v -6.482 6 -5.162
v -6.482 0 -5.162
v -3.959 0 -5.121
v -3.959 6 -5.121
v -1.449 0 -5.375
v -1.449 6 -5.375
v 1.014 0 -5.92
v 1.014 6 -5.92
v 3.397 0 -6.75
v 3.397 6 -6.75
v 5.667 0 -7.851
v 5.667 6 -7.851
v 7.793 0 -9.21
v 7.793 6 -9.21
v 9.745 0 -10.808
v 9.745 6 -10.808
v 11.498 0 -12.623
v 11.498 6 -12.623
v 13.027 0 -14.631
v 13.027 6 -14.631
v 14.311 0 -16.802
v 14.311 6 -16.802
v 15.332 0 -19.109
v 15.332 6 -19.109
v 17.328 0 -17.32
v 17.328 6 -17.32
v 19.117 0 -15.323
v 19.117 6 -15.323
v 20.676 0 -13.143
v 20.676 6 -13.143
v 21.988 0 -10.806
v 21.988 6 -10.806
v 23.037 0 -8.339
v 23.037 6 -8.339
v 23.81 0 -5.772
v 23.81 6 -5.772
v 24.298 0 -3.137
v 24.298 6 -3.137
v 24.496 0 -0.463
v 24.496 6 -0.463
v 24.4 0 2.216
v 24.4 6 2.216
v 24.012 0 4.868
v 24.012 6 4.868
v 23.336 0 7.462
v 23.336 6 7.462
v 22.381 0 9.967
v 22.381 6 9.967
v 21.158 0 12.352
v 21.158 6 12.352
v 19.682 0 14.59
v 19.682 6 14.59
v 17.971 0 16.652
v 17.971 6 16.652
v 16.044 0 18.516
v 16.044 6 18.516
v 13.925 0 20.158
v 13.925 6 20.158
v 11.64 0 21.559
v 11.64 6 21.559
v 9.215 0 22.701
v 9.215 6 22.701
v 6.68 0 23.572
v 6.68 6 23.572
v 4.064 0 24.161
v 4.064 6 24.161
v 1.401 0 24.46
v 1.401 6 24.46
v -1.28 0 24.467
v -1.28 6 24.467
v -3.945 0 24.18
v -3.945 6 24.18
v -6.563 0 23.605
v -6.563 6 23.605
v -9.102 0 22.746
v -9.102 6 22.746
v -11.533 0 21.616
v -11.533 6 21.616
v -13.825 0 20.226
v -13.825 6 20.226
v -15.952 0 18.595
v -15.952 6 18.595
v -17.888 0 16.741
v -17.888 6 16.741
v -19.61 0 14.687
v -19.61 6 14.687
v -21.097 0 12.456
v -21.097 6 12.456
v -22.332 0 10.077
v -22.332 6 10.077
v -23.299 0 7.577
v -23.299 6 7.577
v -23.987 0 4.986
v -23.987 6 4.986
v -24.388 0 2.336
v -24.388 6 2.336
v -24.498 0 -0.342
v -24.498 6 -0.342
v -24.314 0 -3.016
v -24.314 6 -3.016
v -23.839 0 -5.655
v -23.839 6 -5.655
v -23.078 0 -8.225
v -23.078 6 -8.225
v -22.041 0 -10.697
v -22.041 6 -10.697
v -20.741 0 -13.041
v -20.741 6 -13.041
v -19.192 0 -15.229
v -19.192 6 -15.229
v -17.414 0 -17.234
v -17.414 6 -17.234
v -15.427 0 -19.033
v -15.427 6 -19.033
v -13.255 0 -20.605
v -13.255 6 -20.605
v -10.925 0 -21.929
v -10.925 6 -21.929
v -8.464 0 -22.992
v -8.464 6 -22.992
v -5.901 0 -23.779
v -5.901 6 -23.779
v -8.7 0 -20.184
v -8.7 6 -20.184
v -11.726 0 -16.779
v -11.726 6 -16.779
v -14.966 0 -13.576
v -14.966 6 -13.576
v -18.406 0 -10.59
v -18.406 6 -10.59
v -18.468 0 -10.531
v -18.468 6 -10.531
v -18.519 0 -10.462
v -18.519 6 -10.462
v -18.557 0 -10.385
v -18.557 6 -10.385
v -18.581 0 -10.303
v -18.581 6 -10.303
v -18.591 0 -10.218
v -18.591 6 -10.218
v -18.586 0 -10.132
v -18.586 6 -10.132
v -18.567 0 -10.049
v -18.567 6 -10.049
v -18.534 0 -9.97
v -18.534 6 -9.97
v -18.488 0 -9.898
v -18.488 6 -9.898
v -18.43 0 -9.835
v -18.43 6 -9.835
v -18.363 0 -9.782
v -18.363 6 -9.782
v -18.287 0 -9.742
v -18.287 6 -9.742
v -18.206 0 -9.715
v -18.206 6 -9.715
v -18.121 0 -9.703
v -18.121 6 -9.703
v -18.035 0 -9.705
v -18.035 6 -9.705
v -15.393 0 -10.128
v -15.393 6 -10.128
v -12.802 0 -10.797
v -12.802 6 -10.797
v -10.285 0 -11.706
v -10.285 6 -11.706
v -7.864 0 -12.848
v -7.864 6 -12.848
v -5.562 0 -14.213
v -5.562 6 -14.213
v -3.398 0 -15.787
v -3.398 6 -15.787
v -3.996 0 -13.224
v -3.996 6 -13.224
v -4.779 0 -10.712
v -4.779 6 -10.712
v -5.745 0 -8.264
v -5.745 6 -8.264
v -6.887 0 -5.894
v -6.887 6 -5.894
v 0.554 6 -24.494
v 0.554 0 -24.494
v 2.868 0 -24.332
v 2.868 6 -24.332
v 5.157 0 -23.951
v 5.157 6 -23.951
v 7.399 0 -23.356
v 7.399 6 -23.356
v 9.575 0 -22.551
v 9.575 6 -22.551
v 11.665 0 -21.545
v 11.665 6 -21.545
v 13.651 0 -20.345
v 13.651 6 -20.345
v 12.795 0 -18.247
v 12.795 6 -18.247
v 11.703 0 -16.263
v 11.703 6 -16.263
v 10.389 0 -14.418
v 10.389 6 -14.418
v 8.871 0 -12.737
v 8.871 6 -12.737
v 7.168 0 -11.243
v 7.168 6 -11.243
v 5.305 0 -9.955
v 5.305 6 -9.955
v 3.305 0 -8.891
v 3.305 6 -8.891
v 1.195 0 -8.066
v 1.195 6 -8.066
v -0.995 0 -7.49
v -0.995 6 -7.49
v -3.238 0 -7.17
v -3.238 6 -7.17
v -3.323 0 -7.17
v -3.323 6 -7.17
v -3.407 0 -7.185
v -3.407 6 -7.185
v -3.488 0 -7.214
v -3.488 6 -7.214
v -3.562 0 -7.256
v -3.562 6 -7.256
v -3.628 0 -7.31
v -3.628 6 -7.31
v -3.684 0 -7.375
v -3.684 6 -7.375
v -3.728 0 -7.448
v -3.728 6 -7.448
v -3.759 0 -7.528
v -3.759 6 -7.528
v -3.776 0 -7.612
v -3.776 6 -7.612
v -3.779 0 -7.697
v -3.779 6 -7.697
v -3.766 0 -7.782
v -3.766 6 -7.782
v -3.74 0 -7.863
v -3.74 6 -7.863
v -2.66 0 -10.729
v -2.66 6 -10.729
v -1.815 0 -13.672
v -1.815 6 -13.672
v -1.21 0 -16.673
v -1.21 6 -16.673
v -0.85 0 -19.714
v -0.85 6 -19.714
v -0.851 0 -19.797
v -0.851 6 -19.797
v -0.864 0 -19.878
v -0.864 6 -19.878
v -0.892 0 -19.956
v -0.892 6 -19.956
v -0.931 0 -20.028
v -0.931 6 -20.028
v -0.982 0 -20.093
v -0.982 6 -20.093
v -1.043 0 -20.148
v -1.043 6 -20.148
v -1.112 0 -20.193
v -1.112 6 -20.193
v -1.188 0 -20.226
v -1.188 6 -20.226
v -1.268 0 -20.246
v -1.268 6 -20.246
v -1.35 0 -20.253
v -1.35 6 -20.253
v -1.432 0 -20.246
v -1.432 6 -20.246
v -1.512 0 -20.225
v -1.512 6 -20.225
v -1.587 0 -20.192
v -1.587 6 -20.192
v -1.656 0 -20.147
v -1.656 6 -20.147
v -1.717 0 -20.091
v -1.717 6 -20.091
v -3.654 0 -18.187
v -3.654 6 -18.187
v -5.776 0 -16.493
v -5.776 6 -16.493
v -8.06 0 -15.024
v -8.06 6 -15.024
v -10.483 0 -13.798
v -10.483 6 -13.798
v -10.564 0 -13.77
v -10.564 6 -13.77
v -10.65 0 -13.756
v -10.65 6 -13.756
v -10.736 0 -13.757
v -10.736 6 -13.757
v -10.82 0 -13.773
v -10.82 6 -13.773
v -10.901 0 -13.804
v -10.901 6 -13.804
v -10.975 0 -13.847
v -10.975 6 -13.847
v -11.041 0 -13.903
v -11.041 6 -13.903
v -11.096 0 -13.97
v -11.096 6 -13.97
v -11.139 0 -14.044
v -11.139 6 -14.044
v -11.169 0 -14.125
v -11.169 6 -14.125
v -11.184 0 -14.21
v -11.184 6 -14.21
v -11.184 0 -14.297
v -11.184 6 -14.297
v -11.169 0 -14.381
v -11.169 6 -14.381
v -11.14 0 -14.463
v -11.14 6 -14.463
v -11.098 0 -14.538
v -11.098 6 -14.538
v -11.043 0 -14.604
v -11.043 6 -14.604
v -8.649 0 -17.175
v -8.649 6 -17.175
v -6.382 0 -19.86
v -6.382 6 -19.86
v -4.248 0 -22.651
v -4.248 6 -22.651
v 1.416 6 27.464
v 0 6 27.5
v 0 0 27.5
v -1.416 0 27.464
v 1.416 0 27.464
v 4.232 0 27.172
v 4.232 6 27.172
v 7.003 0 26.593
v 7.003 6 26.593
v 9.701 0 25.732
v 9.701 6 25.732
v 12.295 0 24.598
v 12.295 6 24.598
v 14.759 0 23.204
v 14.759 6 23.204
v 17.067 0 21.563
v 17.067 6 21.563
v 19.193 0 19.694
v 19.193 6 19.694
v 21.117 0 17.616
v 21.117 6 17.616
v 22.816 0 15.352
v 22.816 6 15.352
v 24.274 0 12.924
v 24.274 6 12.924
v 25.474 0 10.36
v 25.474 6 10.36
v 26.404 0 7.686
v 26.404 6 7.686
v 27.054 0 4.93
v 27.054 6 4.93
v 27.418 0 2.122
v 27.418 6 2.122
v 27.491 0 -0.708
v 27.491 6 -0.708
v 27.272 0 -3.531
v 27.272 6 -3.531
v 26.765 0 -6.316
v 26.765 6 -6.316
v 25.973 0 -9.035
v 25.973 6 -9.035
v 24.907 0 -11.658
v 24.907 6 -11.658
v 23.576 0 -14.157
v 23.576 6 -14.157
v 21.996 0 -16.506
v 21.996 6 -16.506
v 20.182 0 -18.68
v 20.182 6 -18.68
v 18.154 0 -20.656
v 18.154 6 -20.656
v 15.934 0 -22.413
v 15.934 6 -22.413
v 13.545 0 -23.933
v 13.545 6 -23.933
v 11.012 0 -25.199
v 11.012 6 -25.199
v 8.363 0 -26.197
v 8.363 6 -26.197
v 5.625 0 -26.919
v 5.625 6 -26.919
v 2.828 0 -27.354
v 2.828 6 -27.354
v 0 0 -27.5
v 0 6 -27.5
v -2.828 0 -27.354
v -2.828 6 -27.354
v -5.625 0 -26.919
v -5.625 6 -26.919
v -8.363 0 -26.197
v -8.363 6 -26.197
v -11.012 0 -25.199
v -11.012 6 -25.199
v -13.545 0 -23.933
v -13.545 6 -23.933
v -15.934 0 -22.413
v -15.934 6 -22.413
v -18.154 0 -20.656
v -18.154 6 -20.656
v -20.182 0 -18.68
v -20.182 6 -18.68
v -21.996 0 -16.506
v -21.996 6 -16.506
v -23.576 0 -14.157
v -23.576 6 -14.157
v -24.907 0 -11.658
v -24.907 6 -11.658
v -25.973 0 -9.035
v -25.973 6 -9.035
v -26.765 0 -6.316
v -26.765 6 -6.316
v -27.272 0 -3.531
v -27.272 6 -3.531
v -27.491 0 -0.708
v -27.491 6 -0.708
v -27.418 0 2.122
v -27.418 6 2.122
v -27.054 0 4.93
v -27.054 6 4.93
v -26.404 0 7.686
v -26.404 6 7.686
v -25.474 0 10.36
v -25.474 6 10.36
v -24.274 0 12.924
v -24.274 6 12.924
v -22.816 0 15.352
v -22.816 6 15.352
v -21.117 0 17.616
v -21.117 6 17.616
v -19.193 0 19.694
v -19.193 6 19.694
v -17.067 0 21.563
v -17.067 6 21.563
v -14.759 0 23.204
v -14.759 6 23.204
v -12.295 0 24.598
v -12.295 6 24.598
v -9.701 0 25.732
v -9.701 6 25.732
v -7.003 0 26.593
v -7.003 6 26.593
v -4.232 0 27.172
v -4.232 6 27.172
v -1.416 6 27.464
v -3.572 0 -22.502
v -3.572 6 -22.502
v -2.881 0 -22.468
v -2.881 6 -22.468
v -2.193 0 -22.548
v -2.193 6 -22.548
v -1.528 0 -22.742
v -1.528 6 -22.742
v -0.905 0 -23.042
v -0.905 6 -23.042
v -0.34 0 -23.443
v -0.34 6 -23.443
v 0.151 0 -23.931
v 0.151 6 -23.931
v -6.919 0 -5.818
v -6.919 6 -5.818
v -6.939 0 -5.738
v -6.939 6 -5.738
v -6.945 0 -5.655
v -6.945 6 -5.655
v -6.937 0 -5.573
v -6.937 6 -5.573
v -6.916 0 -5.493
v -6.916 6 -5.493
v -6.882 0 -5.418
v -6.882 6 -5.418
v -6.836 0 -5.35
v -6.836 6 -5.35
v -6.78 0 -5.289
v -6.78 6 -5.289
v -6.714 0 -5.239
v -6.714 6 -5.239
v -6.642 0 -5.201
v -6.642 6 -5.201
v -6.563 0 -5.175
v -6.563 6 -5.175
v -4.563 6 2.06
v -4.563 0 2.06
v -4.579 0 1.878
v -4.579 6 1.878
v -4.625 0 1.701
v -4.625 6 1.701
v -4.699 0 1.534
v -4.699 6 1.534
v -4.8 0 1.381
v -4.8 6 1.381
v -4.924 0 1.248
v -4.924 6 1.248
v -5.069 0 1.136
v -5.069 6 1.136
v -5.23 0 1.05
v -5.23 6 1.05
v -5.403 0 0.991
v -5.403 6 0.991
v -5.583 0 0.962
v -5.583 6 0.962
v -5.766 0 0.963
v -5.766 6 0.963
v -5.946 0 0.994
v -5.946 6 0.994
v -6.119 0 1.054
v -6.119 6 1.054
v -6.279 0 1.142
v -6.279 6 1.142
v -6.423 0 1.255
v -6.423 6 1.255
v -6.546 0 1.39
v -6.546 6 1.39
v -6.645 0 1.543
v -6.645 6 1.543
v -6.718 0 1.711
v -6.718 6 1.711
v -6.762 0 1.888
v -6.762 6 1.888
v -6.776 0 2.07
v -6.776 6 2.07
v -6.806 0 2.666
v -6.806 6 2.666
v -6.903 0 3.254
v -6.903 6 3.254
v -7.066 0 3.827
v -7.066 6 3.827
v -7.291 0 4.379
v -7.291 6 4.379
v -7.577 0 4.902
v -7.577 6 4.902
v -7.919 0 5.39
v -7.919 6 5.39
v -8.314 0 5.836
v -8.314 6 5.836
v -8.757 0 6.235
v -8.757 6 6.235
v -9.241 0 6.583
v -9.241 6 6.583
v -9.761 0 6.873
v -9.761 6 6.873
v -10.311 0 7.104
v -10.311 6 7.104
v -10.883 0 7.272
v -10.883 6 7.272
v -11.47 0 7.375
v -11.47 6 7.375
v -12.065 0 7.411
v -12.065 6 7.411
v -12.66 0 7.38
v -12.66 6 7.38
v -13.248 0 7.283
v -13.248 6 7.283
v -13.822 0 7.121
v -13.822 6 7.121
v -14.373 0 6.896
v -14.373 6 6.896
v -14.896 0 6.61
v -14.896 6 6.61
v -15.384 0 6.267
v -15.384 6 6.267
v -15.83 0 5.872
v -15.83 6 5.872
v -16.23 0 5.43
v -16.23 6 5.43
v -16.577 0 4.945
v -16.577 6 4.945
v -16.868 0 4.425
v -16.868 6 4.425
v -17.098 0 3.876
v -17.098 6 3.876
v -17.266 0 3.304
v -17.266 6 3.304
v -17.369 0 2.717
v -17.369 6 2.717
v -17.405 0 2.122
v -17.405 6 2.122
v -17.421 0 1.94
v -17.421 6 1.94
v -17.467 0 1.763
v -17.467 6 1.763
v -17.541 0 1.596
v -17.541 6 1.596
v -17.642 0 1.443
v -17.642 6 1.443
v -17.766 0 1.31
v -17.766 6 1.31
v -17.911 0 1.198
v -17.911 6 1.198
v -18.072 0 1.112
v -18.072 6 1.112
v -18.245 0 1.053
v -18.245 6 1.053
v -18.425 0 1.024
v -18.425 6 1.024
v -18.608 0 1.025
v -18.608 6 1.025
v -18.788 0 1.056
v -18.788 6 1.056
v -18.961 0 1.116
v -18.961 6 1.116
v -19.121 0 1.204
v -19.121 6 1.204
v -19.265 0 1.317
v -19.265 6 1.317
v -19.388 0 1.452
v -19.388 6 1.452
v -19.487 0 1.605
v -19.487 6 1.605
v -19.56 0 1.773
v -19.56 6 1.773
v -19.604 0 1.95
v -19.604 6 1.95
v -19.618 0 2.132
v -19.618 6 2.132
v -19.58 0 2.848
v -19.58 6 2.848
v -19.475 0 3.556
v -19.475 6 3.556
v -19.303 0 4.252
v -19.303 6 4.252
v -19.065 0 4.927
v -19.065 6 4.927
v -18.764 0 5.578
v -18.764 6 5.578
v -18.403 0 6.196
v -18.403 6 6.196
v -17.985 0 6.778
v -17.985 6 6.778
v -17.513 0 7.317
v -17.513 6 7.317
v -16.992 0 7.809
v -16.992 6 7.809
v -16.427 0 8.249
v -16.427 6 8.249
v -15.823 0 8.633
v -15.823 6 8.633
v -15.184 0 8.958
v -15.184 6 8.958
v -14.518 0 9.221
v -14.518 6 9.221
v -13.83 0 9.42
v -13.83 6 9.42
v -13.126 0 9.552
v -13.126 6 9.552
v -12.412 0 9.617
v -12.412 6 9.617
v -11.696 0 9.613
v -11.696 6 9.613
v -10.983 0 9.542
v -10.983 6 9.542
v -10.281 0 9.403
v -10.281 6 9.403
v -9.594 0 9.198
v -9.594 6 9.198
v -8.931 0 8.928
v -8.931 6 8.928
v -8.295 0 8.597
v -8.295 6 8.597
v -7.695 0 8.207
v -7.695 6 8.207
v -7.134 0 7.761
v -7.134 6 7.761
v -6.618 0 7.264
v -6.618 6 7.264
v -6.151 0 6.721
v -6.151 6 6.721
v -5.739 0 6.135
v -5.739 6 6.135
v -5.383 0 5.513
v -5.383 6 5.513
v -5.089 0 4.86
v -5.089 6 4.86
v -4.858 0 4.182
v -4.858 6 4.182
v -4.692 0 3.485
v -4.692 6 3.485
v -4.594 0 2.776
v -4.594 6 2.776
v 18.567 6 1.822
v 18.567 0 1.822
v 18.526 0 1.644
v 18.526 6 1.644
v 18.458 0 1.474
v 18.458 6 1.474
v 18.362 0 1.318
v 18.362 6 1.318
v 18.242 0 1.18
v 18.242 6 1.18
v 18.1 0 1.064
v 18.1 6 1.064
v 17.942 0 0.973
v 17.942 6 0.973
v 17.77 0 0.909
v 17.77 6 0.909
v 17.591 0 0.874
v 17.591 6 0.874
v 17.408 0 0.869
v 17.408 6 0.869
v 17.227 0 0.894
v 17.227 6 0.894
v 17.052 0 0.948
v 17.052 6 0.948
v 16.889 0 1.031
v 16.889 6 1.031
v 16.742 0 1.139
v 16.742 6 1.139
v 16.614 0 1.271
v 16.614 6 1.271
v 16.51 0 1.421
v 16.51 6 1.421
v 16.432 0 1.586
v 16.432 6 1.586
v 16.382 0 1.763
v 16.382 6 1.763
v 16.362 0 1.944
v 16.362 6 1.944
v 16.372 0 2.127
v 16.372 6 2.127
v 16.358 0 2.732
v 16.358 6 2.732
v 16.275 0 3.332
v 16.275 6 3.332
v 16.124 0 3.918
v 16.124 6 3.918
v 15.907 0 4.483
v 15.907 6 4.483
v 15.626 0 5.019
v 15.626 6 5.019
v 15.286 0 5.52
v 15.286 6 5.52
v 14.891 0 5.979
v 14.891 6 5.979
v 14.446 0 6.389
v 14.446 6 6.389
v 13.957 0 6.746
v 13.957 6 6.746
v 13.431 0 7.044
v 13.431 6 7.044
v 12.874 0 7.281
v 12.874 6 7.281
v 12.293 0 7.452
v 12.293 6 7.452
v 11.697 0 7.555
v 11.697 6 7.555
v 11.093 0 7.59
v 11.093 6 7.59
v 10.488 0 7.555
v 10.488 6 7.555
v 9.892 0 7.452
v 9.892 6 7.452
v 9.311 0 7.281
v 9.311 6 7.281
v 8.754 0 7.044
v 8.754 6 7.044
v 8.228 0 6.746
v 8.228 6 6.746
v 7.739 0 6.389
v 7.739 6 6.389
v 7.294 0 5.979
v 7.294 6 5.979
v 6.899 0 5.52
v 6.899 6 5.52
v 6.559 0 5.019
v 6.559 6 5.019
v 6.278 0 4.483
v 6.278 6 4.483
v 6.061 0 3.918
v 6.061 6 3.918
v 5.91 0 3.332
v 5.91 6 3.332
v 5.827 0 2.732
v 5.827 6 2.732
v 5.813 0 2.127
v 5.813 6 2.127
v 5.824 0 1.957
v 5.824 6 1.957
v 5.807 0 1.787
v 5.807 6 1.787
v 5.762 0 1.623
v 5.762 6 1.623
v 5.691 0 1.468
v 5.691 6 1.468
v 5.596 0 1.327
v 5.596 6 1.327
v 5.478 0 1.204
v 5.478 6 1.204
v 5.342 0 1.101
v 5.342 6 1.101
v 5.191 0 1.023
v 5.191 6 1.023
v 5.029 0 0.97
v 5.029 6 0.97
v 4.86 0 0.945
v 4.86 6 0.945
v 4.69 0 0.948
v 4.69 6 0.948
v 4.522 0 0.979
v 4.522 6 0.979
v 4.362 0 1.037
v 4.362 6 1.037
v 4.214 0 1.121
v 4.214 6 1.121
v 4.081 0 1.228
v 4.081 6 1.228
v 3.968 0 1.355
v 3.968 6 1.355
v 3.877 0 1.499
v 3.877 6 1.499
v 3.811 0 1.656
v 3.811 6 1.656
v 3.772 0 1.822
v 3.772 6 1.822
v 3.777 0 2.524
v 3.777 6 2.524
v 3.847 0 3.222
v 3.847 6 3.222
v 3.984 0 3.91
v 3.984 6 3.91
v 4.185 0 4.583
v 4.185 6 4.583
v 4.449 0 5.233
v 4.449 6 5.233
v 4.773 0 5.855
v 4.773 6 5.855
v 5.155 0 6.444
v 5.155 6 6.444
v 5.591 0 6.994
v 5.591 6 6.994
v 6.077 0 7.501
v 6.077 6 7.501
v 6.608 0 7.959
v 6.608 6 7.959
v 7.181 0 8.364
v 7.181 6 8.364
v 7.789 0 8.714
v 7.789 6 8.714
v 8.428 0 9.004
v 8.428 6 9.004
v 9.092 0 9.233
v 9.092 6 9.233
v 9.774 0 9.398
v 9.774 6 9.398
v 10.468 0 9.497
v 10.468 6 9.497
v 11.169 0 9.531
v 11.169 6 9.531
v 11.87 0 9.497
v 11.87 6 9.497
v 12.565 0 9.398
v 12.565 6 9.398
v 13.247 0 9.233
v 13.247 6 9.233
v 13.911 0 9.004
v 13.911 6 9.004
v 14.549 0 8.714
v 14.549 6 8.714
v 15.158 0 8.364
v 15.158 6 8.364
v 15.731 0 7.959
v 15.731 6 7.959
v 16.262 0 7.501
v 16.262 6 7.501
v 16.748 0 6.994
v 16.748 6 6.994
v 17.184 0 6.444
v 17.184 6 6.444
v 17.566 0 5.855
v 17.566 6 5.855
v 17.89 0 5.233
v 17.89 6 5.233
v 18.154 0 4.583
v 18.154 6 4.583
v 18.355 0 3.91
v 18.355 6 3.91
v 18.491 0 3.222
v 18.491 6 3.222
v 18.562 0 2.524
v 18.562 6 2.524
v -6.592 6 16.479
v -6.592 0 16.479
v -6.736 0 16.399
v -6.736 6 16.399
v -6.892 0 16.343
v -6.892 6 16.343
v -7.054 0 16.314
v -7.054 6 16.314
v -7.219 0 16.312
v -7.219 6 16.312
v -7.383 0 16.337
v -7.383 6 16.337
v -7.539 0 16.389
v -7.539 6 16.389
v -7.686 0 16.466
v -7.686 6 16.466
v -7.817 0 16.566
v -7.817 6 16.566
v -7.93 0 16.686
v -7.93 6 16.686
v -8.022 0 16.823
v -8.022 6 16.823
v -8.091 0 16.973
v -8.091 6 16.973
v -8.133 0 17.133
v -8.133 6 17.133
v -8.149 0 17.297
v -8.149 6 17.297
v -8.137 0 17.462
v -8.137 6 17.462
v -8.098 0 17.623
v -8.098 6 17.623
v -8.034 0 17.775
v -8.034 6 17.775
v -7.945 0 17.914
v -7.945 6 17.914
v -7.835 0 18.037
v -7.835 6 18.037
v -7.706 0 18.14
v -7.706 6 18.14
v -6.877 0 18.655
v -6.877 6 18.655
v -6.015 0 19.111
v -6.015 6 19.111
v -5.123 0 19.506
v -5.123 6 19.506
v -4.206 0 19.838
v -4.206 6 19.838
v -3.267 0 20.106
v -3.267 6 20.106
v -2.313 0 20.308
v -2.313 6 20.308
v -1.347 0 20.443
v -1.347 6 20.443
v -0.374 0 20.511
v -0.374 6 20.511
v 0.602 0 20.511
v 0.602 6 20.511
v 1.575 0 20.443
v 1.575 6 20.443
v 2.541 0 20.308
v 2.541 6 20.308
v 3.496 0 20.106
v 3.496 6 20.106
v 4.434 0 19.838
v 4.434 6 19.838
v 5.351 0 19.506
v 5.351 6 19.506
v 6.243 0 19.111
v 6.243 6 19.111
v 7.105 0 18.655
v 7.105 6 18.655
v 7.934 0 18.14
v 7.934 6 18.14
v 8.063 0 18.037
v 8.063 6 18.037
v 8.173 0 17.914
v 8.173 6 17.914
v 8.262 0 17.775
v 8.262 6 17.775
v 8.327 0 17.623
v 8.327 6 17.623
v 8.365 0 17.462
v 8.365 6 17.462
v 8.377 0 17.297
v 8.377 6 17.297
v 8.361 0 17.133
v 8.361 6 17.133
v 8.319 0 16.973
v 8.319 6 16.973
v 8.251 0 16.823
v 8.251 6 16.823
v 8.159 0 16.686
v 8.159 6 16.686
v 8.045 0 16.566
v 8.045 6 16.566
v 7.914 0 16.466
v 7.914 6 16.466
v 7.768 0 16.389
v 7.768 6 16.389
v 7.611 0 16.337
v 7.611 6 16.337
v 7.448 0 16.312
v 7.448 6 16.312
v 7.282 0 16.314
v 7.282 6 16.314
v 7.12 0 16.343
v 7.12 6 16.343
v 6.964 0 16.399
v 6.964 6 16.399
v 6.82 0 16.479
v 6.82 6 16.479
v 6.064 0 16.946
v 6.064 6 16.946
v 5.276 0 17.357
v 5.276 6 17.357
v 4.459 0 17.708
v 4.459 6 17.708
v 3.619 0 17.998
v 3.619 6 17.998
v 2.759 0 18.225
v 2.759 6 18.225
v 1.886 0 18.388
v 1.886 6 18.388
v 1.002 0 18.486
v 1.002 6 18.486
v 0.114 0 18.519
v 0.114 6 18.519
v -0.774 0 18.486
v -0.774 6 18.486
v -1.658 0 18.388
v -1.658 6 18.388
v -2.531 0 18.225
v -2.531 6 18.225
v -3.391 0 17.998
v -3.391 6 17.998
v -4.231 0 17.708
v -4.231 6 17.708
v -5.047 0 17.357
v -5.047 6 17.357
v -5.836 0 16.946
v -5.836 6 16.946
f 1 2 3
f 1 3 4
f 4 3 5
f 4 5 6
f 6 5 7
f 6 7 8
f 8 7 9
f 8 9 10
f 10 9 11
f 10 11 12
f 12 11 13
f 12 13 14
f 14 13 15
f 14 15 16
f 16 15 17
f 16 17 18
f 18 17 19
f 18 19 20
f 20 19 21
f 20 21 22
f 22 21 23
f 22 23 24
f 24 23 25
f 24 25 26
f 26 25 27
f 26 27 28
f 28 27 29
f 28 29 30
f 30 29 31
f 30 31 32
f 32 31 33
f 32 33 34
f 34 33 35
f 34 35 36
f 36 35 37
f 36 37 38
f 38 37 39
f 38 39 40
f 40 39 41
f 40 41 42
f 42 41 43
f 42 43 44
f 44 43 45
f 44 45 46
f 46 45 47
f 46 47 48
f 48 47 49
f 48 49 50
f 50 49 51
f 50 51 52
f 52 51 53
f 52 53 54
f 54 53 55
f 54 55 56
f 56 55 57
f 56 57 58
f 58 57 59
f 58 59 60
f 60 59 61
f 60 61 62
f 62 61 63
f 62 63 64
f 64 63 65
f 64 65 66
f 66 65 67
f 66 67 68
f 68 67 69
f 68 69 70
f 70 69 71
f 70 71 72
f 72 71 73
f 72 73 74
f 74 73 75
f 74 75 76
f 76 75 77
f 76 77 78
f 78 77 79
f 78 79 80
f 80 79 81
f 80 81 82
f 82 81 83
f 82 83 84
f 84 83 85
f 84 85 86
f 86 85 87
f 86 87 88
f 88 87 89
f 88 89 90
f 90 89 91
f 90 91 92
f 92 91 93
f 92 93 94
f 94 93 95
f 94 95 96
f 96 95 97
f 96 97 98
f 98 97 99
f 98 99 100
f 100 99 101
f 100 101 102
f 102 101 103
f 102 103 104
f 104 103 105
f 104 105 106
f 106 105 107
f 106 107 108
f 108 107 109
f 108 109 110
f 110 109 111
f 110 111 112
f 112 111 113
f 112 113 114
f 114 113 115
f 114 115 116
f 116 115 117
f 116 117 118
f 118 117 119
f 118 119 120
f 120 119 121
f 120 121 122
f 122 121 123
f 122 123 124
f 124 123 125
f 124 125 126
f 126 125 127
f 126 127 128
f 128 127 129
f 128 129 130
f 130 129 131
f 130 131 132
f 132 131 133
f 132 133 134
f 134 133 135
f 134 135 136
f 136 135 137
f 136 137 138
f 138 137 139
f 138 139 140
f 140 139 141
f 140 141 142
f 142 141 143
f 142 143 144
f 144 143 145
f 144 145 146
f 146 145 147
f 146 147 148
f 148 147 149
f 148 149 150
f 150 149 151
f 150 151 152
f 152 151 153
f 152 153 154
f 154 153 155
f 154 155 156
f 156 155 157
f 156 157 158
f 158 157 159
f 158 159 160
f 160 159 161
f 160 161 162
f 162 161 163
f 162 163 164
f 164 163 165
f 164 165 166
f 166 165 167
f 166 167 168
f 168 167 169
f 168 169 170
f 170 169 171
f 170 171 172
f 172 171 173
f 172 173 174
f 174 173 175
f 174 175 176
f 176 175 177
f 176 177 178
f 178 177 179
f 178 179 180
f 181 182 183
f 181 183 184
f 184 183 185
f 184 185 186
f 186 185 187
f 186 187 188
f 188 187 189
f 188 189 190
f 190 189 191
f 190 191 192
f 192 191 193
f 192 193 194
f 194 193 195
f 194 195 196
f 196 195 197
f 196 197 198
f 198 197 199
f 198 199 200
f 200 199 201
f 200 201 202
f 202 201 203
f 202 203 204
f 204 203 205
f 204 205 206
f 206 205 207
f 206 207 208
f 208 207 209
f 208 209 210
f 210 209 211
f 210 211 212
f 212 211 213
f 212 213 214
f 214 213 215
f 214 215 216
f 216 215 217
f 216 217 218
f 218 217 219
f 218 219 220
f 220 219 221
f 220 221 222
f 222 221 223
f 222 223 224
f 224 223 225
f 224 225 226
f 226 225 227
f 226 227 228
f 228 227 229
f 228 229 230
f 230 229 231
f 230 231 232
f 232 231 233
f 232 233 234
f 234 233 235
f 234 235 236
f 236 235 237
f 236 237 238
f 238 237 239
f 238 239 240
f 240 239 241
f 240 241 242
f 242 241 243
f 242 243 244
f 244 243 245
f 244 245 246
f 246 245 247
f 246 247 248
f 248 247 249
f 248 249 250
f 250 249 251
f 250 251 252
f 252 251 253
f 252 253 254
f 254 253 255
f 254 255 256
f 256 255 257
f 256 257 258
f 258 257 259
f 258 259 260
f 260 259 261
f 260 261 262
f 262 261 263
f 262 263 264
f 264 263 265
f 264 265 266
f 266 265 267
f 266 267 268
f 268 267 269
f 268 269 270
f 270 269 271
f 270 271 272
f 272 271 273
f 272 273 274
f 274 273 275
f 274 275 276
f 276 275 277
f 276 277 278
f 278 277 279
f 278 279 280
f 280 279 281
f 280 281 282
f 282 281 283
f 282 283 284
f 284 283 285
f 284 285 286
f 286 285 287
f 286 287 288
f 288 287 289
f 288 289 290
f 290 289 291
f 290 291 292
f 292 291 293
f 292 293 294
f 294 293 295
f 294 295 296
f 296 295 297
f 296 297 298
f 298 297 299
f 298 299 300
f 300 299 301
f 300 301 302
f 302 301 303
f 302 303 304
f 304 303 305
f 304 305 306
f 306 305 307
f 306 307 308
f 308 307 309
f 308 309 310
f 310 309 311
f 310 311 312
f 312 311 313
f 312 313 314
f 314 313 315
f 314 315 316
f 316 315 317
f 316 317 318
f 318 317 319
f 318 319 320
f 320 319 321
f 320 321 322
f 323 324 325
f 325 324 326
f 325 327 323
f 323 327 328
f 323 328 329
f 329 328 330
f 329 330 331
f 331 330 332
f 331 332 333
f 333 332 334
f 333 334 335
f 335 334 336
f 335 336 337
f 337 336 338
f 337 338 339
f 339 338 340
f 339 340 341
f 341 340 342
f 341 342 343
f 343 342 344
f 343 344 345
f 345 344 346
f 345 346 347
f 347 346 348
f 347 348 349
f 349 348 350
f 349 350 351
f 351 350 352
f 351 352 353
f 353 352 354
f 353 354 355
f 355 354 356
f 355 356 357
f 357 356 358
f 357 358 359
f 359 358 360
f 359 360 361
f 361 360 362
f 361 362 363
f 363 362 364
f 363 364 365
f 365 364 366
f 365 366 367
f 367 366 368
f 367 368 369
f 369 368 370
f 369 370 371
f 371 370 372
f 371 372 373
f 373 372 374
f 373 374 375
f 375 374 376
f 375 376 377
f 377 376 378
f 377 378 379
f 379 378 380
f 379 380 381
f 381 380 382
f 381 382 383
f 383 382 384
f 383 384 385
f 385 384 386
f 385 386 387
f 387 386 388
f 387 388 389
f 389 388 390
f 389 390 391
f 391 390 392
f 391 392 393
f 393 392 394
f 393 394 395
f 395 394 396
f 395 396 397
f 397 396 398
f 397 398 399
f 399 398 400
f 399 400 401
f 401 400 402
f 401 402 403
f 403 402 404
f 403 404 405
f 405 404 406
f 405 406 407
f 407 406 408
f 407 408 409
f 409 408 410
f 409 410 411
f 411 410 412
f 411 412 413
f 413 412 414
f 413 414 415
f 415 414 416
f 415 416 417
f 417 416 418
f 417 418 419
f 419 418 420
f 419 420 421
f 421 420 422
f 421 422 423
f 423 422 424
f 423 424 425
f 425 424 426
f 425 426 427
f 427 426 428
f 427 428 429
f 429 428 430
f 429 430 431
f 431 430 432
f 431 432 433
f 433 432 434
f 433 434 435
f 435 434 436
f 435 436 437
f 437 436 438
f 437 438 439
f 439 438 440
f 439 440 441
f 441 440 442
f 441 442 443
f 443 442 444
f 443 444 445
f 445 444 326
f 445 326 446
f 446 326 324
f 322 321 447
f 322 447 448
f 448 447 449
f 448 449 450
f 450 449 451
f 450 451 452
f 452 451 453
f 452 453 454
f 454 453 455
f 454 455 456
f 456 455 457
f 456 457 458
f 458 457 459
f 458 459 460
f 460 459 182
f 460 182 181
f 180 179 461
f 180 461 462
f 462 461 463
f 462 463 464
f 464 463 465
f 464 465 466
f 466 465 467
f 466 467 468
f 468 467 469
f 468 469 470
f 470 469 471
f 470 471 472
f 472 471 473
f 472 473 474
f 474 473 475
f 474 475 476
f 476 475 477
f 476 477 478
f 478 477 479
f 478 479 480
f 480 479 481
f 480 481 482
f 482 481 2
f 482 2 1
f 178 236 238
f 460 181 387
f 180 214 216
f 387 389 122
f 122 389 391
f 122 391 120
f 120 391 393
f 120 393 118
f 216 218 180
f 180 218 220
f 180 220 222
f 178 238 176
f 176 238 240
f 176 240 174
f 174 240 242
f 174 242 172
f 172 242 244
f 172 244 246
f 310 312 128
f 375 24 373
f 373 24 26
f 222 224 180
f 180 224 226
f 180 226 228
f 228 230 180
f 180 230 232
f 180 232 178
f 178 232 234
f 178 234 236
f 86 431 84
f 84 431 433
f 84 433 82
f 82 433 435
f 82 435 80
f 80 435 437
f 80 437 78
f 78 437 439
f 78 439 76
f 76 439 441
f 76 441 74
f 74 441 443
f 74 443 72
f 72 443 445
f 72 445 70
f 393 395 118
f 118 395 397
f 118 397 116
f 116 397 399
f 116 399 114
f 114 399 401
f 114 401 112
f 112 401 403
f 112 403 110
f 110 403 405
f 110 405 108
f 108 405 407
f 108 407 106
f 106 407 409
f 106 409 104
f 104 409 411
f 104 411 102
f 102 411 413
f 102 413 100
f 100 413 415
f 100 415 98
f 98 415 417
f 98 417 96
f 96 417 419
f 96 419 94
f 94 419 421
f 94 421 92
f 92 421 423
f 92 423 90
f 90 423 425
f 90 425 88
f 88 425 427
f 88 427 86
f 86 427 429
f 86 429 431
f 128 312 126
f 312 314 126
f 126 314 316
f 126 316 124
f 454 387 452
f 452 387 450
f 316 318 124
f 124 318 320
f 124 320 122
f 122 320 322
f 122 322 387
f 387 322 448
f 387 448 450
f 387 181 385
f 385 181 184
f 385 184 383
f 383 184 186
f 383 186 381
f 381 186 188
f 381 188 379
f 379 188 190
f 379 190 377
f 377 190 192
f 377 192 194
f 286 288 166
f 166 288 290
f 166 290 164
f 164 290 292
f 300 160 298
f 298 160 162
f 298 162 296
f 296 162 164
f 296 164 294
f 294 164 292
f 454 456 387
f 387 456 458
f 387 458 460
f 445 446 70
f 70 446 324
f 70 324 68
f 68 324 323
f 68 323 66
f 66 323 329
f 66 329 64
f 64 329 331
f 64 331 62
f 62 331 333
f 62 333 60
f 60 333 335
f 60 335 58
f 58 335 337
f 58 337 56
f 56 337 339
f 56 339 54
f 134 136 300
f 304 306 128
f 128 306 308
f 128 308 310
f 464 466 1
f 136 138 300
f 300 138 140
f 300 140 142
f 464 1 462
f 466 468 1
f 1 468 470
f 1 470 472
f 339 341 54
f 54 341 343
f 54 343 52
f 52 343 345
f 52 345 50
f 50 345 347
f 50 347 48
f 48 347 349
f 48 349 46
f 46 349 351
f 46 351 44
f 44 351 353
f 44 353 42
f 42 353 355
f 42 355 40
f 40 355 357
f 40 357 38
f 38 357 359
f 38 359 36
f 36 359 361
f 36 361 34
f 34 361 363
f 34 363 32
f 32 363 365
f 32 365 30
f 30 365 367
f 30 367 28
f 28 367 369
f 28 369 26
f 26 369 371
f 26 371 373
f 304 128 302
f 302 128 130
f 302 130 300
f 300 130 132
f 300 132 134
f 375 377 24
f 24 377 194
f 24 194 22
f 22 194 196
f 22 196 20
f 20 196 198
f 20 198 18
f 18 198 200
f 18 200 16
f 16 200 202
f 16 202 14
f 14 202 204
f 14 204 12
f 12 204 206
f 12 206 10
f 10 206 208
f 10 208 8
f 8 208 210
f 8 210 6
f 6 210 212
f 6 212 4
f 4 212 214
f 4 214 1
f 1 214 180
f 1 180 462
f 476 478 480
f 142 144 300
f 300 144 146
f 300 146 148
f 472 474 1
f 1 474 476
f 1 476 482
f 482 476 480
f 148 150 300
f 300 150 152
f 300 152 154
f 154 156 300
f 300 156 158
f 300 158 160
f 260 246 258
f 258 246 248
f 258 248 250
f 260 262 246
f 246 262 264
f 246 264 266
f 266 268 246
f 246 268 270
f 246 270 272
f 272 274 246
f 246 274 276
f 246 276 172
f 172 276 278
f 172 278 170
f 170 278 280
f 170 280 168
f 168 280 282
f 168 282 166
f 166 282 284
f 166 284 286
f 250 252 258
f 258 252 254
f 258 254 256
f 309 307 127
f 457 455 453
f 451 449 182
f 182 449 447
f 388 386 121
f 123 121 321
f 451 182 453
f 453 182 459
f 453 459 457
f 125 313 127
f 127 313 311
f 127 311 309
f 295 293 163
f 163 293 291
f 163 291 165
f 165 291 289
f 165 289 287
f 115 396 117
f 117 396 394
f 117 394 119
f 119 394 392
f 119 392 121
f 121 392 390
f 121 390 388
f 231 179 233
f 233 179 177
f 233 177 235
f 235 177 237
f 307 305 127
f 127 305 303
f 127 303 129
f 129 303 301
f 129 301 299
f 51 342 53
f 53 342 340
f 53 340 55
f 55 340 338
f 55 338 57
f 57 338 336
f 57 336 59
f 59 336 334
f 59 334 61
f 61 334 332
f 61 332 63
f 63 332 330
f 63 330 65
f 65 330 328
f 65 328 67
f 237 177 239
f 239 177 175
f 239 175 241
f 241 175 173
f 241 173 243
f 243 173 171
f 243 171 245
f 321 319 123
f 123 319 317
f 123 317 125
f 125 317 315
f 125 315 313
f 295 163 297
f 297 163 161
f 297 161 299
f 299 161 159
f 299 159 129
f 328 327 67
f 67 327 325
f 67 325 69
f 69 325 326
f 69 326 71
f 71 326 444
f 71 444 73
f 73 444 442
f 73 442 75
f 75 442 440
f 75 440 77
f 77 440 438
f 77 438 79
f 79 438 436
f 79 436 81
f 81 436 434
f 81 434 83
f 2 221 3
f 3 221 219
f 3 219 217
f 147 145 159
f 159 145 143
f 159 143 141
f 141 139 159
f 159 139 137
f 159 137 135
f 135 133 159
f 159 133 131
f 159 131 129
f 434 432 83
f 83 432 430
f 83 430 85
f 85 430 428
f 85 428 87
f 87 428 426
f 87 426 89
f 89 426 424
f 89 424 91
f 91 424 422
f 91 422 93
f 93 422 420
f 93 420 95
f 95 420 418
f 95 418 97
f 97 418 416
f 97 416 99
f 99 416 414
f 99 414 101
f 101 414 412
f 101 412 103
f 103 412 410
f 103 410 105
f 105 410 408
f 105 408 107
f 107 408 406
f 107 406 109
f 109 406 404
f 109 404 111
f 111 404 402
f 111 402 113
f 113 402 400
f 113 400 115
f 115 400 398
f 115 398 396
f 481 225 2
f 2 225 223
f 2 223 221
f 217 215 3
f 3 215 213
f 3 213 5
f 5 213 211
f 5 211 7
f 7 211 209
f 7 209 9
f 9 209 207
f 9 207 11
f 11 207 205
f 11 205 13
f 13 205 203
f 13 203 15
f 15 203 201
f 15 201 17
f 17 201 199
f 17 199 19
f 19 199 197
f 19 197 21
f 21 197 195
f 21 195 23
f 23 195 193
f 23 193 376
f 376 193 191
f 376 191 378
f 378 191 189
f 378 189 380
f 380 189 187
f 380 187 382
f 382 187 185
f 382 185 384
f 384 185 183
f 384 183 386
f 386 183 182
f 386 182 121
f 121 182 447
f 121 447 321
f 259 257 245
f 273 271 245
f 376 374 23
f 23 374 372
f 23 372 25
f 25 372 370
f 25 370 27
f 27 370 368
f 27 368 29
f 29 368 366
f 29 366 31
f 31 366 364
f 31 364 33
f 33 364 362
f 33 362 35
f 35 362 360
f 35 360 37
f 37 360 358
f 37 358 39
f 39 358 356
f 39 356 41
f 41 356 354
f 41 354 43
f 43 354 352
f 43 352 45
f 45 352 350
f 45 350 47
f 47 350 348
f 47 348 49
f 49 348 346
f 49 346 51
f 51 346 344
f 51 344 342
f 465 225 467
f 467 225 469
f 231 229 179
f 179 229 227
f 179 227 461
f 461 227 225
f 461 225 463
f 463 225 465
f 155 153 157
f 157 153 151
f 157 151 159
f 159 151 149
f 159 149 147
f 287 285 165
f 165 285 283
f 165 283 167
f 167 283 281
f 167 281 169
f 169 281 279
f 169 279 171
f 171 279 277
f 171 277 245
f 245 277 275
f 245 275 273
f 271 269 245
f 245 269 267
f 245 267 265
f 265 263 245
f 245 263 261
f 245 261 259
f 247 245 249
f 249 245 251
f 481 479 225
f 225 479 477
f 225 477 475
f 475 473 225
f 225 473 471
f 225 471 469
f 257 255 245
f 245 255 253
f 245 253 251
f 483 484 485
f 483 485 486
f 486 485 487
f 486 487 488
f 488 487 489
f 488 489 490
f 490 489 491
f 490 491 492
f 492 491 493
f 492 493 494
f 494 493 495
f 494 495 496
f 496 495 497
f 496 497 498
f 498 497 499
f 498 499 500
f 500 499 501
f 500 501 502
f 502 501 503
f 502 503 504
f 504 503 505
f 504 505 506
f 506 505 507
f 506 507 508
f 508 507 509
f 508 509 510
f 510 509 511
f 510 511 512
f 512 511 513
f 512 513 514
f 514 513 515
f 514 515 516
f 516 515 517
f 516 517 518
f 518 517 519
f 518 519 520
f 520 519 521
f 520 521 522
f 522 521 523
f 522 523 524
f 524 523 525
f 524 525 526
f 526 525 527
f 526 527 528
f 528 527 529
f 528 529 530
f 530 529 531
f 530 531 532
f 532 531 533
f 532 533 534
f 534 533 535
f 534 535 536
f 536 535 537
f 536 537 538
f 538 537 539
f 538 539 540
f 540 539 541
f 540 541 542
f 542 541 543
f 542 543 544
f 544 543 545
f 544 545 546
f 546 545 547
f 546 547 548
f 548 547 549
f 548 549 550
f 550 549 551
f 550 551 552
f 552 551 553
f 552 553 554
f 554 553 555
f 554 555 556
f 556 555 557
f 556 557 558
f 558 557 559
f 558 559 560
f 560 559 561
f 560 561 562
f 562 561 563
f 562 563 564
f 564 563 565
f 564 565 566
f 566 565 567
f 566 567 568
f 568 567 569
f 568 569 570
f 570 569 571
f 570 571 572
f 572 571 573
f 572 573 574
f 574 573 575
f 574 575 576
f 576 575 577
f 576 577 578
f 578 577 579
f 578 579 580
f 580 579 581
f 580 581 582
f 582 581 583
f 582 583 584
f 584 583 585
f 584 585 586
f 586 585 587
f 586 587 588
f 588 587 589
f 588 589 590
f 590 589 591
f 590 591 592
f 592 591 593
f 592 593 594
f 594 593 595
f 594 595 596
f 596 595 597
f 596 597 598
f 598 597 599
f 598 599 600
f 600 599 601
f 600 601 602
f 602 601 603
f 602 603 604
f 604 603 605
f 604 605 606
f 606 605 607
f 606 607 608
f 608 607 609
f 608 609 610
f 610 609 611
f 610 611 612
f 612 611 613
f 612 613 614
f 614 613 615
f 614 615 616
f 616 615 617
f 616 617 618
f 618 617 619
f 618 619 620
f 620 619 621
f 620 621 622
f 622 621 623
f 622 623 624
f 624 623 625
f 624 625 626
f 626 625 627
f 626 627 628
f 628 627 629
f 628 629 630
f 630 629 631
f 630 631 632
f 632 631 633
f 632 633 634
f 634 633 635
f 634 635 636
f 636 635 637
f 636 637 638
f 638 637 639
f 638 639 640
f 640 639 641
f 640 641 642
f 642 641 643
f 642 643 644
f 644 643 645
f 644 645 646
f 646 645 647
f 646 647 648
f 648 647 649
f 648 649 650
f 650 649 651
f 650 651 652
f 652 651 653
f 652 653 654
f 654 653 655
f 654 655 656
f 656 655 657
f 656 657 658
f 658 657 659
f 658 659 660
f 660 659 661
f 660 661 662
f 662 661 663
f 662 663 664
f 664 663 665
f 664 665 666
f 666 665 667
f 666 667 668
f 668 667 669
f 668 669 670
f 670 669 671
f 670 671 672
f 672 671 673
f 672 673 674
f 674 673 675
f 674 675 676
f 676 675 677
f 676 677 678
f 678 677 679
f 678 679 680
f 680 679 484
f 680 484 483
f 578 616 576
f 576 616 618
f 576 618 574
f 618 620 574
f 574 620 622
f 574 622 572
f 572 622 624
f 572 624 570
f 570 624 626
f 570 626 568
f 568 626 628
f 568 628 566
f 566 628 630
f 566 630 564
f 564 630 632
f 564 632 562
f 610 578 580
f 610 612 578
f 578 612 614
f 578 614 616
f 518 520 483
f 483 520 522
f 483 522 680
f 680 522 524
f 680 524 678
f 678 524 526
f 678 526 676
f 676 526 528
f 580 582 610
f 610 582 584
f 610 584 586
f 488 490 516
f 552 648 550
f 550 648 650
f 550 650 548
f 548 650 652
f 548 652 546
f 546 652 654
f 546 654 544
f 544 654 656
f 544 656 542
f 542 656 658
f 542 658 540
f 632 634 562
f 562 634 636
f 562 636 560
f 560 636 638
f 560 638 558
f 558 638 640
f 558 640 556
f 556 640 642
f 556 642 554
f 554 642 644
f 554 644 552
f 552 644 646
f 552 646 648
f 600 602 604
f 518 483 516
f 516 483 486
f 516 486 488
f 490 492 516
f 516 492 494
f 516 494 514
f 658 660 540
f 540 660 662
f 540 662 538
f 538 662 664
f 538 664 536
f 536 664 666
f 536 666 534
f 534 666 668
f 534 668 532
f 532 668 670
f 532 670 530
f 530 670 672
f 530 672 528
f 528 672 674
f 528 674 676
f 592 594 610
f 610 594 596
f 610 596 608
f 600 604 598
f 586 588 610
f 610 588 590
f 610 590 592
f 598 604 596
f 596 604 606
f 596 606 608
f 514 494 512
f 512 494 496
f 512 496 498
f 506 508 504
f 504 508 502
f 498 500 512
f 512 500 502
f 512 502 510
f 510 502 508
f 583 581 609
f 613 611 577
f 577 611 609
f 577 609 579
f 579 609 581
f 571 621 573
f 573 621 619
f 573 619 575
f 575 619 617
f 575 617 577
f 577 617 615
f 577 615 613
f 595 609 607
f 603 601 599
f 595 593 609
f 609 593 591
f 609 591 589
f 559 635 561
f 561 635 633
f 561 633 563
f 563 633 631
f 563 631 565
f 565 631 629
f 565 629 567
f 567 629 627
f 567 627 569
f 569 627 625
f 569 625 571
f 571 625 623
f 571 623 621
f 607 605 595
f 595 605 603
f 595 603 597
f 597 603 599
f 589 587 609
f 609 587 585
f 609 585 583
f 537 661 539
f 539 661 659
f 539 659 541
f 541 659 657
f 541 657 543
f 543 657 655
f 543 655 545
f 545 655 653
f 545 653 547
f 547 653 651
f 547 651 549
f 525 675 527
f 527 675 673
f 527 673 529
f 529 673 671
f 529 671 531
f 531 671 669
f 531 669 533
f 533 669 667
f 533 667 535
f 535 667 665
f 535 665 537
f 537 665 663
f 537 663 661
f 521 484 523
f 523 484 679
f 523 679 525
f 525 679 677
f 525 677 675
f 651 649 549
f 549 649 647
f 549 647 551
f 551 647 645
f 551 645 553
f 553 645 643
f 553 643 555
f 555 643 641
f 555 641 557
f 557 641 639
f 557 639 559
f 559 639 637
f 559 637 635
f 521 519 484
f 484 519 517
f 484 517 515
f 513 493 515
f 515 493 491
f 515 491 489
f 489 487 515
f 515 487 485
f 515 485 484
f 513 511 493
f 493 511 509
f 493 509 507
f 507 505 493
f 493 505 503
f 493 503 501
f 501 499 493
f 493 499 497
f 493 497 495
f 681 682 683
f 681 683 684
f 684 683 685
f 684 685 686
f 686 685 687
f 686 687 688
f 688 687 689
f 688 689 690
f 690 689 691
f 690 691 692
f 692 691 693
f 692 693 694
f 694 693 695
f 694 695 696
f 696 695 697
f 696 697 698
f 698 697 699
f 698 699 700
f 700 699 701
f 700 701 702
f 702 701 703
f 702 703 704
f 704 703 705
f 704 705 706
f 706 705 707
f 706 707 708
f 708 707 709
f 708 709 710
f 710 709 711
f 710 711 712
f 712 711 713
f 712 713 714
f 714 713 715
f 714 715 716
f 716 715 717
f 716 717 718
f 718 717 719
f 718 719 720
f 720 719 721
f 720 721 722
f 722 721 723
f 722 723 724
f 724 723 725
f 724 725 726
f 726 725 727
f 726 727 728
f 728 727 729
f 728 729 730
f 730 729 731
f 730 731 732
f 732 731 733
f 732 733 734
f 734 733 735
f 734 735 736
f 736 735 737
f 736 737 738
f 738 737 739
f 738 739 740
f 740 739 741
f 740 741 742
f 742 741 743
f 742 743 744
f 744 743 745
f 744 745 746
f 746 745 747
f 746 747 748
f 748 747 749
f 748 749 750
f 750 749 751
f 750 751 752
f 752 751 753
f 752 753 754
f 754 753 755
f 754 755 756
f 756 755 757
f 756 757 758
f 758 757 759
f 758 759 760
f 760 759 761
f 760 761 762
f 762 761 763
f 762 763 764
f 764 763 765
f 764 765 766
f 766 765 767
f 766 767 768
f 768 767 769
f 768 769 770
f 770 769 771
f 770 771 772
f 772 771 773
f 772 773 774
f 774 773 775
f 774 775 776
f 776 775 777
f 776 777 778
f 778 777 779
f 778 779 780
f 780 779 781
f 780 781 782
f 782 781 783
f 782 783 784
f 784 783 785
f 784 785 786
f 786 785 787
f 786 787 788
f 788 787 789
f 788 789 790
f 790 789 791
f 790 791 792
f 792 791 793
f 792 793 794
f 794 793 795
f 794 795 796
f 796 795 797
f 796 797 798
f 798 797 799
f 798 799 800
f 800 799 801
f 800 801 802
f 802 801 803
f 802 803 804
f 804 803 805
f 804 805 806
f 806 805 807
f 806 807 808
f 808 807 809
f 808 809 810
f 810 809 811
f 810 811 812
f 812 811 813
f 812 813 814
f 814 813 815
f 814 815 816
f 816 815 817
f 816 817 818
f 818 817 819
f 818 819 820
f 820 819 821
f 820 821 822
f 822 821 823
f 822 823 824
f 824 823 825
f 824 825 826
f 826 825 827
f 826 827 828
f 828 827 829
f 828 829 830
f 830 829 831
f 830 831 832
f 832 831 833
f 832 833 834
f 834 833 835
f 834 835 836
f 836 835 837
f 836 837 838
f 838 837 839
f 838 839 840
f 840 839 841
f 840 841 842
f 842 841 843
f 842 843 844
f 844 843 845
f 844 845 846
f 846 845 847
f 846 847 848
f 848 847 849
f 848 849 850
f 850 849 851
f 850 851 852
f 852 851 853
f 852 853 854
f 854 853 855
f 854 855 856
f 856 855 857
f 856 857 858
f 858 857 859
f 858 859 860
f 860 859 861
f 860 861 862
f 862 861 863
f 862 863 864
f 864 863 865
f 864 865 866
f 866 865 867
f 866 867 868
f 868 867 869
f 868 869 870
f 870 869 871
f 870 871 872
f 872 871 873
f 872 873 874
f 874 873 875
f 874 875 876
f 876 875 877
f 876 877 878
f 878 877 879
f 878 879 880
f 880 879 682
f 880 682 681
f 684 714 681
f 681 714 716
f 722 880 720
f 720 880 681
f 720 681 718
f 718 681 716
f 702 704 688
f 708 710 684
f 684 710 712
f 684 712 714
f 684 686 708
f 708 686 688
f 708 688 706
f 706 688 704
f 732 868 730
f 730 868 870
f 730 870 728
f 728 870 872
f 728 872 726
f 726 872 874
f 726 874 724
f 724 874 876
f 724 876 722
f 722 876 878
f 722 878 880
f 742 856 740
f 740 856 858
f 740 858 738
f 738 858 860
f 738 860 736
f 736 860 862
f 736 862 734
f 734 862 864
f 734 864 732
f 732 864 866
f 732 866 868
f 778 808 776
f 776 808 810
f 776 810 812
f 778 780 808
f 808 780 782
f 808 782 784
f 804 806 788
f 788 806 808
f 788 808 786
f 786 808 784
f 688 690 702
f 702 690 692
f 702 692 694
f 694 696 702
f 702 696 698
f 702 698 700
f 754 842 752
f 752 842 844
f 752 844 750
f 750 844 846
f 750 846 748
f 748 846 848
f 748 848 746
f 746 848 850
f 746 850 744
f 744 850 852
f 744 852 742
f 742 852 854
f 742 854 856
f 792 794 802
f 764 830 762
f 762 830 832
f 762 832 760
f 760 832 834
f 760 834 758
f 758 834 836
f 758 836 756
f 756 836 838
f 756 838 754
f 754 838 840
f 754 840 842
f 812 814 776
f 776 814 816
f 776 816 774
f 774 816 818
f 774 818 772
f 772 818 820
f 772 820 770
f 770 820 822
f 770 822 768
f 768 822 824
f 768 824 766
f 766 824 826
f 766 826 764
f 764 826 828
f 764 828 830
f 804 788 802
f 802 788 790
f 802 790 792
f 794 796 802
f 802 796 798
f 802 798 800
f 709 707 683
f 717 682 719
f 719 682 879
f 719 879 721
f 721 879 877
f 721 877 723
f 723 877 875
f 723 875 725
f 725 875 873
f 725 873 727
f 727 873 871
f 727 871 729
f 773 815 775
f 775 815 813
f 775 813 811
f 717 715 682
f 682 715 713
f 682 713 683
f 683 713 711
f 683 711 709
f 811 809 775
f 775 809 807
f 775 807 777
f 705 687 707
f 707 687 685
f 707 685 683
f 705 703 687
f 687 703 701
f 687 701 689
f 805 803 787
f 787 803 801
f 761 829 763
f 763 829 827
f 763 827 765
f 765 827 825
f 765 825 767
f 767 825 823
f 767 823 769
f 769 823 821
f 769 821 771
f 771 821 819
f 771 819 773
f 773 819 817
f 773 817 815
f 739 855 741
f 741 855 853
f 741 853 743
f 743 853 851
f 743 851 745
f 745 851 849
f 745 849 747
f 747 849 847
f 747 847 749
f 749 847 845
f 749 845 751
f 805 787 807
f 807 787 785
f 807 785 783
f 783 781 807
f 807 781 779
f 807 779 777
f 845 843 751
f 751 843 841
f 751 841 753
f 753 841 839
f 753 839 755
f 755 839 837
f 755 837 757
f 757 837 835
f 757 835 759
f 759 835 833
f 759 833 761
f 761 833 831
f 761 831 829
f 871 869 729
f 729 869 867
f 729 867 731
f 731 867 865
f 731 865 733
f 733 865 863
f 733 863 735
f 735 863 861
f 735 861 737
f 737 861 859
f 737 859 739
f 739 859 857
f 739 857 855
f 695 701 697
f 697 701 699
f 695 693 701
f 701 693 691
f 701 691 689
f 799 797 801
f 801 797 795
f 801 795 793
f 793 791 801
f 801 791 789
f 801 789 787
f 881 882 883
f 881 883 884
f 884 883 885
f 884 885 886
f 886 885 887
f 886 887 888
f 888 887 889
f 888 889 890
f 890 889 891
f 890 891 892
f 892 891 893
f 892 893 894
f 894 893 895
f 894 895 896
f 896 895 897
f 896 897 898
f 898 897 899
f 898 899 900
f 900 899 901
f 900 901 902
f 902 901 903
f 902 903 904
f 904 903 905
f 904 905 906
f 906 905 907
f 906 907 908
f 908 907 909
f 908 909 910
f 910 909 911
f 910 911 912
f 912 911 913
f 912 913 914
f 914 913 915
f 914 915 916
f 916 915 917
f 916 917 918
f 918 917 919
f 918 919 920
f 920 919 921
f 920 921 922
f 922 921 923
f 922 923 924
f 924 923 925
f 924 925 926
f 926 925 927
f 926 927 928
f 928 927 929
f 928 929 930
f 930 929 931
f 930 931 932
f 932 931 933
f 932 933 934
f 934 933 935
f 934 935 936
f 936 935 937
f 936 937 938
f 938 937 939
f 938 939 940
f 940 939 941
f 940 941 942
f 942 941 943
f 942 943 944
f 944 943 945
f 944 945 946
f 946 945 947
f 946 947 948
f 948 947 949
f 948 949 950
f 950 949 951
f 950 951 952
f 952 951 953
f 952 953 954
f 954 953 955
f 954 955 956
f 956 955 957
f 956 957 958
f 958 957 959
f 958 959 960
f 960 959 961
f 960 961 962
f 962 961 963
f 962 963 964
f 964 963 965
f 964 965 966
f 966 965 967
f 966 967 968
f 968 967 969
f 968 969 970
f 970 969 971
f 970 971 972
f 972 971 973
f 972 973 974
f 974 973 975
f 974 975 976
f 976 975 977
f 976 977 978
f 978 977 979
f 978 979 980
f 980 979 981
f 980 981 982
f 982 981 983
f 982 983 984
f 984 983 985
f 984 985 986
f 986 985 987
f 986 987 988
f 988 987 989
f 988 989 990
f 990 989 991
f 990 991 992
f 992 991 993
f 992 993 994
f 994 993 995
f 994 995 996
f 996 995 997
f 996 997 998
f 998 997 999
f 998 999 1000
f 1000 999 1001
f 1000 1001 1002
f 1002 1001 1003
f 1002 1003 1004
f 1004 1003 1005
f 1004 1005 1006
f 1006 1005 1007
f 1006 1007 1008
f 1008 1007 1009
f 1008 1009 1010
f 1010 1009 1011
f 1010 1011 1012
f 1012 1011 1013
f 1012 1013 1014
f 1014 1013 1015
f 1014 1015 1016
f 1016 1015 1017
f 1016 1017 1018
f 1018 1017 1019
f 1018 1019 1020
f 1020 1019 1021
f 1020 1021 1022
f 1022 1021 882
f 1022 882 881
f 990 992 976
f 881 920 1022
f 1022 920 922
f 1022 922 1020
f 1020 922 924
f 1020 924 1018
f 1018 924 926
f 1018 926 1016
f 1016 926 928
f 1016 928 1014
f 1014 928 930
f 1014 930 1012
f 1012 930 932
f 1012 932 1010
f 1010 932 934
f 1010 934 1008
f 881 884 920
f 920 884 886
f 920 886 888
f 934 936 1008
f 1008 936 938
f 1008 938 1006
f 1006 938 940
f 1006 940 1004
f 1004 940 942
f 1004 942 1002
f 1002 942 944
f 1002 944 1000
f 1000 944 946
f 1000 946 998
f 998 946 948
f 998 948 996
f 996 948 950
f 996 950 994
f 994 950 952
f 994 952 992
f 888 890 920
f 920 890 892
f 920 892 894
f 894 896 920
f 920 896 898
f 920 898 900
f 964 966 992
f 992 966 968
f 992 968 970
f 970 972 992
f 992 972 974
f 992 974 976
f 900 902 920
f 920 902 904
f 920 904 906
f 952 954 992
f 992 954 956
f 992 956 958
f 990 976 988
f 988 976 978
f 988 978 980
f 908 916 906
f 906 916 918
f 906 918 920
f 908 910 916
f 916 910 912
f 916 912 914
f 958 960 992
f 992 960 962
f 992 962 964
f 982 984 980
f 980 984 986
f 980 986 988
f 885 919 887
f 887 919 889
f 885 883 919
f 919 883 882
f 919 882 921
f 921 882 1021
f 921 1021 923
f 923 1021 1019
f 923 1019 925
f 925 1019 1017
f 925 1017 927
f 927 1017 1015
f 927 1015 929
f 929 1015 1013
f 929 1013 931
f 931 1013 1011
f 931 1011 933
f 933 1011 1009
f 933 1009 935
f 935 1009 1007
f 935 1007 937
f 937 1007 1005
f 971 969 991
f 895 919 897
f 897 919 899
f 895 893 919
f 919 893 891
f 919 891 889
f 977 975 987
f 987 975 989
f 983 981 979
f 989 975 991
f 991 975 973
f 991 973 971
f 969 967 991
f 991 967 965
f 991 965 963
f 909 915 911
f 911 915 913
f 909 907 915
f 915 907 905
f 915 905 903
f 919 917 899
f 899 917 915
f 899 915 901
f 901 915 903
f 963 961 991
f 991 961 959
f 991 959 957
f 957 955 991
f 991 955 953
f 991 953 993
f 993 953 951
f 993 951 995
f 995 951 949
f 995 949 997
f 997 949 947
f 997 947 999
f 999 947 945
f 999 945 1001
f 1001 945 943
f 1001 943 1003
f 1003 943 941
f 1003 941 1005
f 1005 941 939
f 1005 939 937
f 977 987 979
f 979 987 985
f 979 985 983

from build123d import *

# Parameters (mm, degrees)
CROQUIS1_R                = 27.5
SALIENTE_EXTRUIR3_DEPTH   = 6
SALIENTE_EXTRUIR3_2_DEPTH = 6
SALIENTE_EXTRUIR3_3_DEPTH = 6
SALIENTE_EXTRUIR3_4_DEPTH = 6


with BuildPart() as part:
    # Croquis1 → Saliente-Extruir3 (new body)
    with BuildSketch(Plane(origin=(0, 0, 0), x_dir=(1, 0, 0), z_dir=(0, 1, 0))):
        Circle(CROQUIS1_R)
        with BuildLine():
            ThreePointArc((-6.481910722, 5.161659186), (6.749911309, 8.499710515), (15.332388636, 19.109365733))
            ThreePointArc((15.332388636, 19.109365733), (-5.261908362, -23.928274497), (-5.901159339, 23.778694633))
            ThreePointArc((-5.901159339, 23.778694633), (-11.725813734, 16.778614453), (-18.406444405, 10.590165925))
            ThreePointArc((-18.406444405, 10.590165925), (-18.552255418, 10.008822773), (-18.035485402, 9.705228534))
            ThreePointArc((-18.035485402, 9.705228534), (-10.284746472, 11.706352258), (-3.398196642, 15.787269012))
            ThreePointArc((-3.398196642, 15.787269012), (-4.77910195, 10.712326415), (-6.886809038, 5.893663462))
            ThreePointArc((-6.886809038, 5.893663462), (-6.882152879, 5.418254788), (-6.481910722, 5.161659186))
        make_face(mode=Mode.SUBTRACT)
        with BuildLine():
            ThreePointArc((0.553855765, 24.493738869), (7.399029371, 23.35603486), (13.650668654, 20.344759652))
            ThreePointArc((13.650668654, 20.344759652), (7.168200526, 11.242778225), (-3.237616322, 7.170010781))
            ThreePointArc((-3.237616322, 7.170010781), (-3.684337904, 7.37498369), (-3.739754637, 7.863351432))
            ThreePointArc((-3.739754637, 7.863351432), (-1.814955726, 13.671675172), (-0.850096282, 19.714068884))
            ThreePointArc((-0.850096282, 19.714068884), (-1.149234355, 20.211325601), (-1.716909146, 20.090938058))
            ThreePointArc((-1.716909146, 20.090938058), (-5.775579982, 16.492523924), (-10.482918218, 13.797647311))
            ThreePointArc((-10.482918218, 13.797647311), (-11.096230859, 13.969574186), (-11.043045611, 14.604304504))
            ThreePointArc((-11.043045611, 14.604304504), (-7.499015993, 18.503713558), (-4.248394951, 22.650881235))
            ThreePointArc((-4.248394951, 22.650881235), (-1.528467266, 22.741552063), (0.553855765, 24.493738869))
        make_face(mode=Mode.SUBTRACT)
    extrude(amount=SALIENTE_EXTRUIR3_DEPTH)


with BuildPart() as body_2:
    # Croquis1 → Saliente-Extruir3 2 (new body)
    with BuildSketch(Plane(origin=(0, 0, 0), x_dir=(1, 0, 0), z_dir=(0, 1, 0))):
        with BuildLine():
            ThreePointArc((5.812888831, -2.127053389), (4.944999806, -0.954199424), (3.772145841, -1.822088449))
            ThreePointArc((3.772145841, -1.822088449), (11.169349937, -9.530541219), (18.566554033, -1.822088449))
            ThreePointArc((18.566554033, -1.822088449), (17.316866775, -0.877366131), (16.372144456, -2.127053389))
            ThreePointArc((16.372144456, -2.127053389), (11.092516644, -7.59016676), (5.812888831, -2.127053389))
        make_face()
    extrude(amount=SALIENTE_EXTRUIR3_2_DEPTH)


with BuildPart() as body_3:
    # Croquis1 → Saliente-Extruir3 3 (new body)
    with BuildSketch(Plane(origin=(0, 0, 0), x_dir=(1, 0, 0), z_dir=(0, 1, 0))):
        with BuildLine():
            ThreePointArc((-17.4051629, -2.121721183), (-18.516794481, -1.020754013), (-19.617761652, -2.132385594))
            ThreePointArc((-19.617761652, -2.132385594), (-12.054197272, -9.623389101), (-4.563193765, -2.059824722))
            ThreePointArc((-4.563193765, -2.059824722), (-5.67481204, -0.958870731), (-6.775766031, -2.070489005))
            ThreePointArc((-6.775766031, -2.070489005), (-12.064848376, -7.410803529), (-17.4051629, -2.121721183))
        make_face()
    extrude(amount=SALIENTE_EXTRUIR3_3_DEPTH)


with BuildPart() as body_4:
    # Croquis1 → Saliente-Extruir3 4 (new body)
    with BuildSketch(Plane(origin=(0, 0, 0), x_dir=(1, 0, 0), z_dir=(0, 1, 0))):
        with BuildLine():
            ThreePointArc((-6.591798022, -16.478913263), (-7.979292605, -16.752516596), (-7.705689271, -18.140011178))
            ThreePointArc((-7.705689271, -18.140011178), (0.114097404, -20.519185991), (7.93388408, -18.140011178))
            ThreePointArc((7.93388408, -18.140011178), (8.207487413, -16.752516596), (6.819992831, -16.478913263))
            ThreePointArc((6.819992831, -16.478913263), (0.114097404, -18.519185991), (-6.591798022, -16.478913263))
        make_face()
    extrude(amount=SALIENTE_EXTRUIR3_4_DEPTH)


solid = Compound([part.part, body_2.part, body_3.part, body_4.part])
